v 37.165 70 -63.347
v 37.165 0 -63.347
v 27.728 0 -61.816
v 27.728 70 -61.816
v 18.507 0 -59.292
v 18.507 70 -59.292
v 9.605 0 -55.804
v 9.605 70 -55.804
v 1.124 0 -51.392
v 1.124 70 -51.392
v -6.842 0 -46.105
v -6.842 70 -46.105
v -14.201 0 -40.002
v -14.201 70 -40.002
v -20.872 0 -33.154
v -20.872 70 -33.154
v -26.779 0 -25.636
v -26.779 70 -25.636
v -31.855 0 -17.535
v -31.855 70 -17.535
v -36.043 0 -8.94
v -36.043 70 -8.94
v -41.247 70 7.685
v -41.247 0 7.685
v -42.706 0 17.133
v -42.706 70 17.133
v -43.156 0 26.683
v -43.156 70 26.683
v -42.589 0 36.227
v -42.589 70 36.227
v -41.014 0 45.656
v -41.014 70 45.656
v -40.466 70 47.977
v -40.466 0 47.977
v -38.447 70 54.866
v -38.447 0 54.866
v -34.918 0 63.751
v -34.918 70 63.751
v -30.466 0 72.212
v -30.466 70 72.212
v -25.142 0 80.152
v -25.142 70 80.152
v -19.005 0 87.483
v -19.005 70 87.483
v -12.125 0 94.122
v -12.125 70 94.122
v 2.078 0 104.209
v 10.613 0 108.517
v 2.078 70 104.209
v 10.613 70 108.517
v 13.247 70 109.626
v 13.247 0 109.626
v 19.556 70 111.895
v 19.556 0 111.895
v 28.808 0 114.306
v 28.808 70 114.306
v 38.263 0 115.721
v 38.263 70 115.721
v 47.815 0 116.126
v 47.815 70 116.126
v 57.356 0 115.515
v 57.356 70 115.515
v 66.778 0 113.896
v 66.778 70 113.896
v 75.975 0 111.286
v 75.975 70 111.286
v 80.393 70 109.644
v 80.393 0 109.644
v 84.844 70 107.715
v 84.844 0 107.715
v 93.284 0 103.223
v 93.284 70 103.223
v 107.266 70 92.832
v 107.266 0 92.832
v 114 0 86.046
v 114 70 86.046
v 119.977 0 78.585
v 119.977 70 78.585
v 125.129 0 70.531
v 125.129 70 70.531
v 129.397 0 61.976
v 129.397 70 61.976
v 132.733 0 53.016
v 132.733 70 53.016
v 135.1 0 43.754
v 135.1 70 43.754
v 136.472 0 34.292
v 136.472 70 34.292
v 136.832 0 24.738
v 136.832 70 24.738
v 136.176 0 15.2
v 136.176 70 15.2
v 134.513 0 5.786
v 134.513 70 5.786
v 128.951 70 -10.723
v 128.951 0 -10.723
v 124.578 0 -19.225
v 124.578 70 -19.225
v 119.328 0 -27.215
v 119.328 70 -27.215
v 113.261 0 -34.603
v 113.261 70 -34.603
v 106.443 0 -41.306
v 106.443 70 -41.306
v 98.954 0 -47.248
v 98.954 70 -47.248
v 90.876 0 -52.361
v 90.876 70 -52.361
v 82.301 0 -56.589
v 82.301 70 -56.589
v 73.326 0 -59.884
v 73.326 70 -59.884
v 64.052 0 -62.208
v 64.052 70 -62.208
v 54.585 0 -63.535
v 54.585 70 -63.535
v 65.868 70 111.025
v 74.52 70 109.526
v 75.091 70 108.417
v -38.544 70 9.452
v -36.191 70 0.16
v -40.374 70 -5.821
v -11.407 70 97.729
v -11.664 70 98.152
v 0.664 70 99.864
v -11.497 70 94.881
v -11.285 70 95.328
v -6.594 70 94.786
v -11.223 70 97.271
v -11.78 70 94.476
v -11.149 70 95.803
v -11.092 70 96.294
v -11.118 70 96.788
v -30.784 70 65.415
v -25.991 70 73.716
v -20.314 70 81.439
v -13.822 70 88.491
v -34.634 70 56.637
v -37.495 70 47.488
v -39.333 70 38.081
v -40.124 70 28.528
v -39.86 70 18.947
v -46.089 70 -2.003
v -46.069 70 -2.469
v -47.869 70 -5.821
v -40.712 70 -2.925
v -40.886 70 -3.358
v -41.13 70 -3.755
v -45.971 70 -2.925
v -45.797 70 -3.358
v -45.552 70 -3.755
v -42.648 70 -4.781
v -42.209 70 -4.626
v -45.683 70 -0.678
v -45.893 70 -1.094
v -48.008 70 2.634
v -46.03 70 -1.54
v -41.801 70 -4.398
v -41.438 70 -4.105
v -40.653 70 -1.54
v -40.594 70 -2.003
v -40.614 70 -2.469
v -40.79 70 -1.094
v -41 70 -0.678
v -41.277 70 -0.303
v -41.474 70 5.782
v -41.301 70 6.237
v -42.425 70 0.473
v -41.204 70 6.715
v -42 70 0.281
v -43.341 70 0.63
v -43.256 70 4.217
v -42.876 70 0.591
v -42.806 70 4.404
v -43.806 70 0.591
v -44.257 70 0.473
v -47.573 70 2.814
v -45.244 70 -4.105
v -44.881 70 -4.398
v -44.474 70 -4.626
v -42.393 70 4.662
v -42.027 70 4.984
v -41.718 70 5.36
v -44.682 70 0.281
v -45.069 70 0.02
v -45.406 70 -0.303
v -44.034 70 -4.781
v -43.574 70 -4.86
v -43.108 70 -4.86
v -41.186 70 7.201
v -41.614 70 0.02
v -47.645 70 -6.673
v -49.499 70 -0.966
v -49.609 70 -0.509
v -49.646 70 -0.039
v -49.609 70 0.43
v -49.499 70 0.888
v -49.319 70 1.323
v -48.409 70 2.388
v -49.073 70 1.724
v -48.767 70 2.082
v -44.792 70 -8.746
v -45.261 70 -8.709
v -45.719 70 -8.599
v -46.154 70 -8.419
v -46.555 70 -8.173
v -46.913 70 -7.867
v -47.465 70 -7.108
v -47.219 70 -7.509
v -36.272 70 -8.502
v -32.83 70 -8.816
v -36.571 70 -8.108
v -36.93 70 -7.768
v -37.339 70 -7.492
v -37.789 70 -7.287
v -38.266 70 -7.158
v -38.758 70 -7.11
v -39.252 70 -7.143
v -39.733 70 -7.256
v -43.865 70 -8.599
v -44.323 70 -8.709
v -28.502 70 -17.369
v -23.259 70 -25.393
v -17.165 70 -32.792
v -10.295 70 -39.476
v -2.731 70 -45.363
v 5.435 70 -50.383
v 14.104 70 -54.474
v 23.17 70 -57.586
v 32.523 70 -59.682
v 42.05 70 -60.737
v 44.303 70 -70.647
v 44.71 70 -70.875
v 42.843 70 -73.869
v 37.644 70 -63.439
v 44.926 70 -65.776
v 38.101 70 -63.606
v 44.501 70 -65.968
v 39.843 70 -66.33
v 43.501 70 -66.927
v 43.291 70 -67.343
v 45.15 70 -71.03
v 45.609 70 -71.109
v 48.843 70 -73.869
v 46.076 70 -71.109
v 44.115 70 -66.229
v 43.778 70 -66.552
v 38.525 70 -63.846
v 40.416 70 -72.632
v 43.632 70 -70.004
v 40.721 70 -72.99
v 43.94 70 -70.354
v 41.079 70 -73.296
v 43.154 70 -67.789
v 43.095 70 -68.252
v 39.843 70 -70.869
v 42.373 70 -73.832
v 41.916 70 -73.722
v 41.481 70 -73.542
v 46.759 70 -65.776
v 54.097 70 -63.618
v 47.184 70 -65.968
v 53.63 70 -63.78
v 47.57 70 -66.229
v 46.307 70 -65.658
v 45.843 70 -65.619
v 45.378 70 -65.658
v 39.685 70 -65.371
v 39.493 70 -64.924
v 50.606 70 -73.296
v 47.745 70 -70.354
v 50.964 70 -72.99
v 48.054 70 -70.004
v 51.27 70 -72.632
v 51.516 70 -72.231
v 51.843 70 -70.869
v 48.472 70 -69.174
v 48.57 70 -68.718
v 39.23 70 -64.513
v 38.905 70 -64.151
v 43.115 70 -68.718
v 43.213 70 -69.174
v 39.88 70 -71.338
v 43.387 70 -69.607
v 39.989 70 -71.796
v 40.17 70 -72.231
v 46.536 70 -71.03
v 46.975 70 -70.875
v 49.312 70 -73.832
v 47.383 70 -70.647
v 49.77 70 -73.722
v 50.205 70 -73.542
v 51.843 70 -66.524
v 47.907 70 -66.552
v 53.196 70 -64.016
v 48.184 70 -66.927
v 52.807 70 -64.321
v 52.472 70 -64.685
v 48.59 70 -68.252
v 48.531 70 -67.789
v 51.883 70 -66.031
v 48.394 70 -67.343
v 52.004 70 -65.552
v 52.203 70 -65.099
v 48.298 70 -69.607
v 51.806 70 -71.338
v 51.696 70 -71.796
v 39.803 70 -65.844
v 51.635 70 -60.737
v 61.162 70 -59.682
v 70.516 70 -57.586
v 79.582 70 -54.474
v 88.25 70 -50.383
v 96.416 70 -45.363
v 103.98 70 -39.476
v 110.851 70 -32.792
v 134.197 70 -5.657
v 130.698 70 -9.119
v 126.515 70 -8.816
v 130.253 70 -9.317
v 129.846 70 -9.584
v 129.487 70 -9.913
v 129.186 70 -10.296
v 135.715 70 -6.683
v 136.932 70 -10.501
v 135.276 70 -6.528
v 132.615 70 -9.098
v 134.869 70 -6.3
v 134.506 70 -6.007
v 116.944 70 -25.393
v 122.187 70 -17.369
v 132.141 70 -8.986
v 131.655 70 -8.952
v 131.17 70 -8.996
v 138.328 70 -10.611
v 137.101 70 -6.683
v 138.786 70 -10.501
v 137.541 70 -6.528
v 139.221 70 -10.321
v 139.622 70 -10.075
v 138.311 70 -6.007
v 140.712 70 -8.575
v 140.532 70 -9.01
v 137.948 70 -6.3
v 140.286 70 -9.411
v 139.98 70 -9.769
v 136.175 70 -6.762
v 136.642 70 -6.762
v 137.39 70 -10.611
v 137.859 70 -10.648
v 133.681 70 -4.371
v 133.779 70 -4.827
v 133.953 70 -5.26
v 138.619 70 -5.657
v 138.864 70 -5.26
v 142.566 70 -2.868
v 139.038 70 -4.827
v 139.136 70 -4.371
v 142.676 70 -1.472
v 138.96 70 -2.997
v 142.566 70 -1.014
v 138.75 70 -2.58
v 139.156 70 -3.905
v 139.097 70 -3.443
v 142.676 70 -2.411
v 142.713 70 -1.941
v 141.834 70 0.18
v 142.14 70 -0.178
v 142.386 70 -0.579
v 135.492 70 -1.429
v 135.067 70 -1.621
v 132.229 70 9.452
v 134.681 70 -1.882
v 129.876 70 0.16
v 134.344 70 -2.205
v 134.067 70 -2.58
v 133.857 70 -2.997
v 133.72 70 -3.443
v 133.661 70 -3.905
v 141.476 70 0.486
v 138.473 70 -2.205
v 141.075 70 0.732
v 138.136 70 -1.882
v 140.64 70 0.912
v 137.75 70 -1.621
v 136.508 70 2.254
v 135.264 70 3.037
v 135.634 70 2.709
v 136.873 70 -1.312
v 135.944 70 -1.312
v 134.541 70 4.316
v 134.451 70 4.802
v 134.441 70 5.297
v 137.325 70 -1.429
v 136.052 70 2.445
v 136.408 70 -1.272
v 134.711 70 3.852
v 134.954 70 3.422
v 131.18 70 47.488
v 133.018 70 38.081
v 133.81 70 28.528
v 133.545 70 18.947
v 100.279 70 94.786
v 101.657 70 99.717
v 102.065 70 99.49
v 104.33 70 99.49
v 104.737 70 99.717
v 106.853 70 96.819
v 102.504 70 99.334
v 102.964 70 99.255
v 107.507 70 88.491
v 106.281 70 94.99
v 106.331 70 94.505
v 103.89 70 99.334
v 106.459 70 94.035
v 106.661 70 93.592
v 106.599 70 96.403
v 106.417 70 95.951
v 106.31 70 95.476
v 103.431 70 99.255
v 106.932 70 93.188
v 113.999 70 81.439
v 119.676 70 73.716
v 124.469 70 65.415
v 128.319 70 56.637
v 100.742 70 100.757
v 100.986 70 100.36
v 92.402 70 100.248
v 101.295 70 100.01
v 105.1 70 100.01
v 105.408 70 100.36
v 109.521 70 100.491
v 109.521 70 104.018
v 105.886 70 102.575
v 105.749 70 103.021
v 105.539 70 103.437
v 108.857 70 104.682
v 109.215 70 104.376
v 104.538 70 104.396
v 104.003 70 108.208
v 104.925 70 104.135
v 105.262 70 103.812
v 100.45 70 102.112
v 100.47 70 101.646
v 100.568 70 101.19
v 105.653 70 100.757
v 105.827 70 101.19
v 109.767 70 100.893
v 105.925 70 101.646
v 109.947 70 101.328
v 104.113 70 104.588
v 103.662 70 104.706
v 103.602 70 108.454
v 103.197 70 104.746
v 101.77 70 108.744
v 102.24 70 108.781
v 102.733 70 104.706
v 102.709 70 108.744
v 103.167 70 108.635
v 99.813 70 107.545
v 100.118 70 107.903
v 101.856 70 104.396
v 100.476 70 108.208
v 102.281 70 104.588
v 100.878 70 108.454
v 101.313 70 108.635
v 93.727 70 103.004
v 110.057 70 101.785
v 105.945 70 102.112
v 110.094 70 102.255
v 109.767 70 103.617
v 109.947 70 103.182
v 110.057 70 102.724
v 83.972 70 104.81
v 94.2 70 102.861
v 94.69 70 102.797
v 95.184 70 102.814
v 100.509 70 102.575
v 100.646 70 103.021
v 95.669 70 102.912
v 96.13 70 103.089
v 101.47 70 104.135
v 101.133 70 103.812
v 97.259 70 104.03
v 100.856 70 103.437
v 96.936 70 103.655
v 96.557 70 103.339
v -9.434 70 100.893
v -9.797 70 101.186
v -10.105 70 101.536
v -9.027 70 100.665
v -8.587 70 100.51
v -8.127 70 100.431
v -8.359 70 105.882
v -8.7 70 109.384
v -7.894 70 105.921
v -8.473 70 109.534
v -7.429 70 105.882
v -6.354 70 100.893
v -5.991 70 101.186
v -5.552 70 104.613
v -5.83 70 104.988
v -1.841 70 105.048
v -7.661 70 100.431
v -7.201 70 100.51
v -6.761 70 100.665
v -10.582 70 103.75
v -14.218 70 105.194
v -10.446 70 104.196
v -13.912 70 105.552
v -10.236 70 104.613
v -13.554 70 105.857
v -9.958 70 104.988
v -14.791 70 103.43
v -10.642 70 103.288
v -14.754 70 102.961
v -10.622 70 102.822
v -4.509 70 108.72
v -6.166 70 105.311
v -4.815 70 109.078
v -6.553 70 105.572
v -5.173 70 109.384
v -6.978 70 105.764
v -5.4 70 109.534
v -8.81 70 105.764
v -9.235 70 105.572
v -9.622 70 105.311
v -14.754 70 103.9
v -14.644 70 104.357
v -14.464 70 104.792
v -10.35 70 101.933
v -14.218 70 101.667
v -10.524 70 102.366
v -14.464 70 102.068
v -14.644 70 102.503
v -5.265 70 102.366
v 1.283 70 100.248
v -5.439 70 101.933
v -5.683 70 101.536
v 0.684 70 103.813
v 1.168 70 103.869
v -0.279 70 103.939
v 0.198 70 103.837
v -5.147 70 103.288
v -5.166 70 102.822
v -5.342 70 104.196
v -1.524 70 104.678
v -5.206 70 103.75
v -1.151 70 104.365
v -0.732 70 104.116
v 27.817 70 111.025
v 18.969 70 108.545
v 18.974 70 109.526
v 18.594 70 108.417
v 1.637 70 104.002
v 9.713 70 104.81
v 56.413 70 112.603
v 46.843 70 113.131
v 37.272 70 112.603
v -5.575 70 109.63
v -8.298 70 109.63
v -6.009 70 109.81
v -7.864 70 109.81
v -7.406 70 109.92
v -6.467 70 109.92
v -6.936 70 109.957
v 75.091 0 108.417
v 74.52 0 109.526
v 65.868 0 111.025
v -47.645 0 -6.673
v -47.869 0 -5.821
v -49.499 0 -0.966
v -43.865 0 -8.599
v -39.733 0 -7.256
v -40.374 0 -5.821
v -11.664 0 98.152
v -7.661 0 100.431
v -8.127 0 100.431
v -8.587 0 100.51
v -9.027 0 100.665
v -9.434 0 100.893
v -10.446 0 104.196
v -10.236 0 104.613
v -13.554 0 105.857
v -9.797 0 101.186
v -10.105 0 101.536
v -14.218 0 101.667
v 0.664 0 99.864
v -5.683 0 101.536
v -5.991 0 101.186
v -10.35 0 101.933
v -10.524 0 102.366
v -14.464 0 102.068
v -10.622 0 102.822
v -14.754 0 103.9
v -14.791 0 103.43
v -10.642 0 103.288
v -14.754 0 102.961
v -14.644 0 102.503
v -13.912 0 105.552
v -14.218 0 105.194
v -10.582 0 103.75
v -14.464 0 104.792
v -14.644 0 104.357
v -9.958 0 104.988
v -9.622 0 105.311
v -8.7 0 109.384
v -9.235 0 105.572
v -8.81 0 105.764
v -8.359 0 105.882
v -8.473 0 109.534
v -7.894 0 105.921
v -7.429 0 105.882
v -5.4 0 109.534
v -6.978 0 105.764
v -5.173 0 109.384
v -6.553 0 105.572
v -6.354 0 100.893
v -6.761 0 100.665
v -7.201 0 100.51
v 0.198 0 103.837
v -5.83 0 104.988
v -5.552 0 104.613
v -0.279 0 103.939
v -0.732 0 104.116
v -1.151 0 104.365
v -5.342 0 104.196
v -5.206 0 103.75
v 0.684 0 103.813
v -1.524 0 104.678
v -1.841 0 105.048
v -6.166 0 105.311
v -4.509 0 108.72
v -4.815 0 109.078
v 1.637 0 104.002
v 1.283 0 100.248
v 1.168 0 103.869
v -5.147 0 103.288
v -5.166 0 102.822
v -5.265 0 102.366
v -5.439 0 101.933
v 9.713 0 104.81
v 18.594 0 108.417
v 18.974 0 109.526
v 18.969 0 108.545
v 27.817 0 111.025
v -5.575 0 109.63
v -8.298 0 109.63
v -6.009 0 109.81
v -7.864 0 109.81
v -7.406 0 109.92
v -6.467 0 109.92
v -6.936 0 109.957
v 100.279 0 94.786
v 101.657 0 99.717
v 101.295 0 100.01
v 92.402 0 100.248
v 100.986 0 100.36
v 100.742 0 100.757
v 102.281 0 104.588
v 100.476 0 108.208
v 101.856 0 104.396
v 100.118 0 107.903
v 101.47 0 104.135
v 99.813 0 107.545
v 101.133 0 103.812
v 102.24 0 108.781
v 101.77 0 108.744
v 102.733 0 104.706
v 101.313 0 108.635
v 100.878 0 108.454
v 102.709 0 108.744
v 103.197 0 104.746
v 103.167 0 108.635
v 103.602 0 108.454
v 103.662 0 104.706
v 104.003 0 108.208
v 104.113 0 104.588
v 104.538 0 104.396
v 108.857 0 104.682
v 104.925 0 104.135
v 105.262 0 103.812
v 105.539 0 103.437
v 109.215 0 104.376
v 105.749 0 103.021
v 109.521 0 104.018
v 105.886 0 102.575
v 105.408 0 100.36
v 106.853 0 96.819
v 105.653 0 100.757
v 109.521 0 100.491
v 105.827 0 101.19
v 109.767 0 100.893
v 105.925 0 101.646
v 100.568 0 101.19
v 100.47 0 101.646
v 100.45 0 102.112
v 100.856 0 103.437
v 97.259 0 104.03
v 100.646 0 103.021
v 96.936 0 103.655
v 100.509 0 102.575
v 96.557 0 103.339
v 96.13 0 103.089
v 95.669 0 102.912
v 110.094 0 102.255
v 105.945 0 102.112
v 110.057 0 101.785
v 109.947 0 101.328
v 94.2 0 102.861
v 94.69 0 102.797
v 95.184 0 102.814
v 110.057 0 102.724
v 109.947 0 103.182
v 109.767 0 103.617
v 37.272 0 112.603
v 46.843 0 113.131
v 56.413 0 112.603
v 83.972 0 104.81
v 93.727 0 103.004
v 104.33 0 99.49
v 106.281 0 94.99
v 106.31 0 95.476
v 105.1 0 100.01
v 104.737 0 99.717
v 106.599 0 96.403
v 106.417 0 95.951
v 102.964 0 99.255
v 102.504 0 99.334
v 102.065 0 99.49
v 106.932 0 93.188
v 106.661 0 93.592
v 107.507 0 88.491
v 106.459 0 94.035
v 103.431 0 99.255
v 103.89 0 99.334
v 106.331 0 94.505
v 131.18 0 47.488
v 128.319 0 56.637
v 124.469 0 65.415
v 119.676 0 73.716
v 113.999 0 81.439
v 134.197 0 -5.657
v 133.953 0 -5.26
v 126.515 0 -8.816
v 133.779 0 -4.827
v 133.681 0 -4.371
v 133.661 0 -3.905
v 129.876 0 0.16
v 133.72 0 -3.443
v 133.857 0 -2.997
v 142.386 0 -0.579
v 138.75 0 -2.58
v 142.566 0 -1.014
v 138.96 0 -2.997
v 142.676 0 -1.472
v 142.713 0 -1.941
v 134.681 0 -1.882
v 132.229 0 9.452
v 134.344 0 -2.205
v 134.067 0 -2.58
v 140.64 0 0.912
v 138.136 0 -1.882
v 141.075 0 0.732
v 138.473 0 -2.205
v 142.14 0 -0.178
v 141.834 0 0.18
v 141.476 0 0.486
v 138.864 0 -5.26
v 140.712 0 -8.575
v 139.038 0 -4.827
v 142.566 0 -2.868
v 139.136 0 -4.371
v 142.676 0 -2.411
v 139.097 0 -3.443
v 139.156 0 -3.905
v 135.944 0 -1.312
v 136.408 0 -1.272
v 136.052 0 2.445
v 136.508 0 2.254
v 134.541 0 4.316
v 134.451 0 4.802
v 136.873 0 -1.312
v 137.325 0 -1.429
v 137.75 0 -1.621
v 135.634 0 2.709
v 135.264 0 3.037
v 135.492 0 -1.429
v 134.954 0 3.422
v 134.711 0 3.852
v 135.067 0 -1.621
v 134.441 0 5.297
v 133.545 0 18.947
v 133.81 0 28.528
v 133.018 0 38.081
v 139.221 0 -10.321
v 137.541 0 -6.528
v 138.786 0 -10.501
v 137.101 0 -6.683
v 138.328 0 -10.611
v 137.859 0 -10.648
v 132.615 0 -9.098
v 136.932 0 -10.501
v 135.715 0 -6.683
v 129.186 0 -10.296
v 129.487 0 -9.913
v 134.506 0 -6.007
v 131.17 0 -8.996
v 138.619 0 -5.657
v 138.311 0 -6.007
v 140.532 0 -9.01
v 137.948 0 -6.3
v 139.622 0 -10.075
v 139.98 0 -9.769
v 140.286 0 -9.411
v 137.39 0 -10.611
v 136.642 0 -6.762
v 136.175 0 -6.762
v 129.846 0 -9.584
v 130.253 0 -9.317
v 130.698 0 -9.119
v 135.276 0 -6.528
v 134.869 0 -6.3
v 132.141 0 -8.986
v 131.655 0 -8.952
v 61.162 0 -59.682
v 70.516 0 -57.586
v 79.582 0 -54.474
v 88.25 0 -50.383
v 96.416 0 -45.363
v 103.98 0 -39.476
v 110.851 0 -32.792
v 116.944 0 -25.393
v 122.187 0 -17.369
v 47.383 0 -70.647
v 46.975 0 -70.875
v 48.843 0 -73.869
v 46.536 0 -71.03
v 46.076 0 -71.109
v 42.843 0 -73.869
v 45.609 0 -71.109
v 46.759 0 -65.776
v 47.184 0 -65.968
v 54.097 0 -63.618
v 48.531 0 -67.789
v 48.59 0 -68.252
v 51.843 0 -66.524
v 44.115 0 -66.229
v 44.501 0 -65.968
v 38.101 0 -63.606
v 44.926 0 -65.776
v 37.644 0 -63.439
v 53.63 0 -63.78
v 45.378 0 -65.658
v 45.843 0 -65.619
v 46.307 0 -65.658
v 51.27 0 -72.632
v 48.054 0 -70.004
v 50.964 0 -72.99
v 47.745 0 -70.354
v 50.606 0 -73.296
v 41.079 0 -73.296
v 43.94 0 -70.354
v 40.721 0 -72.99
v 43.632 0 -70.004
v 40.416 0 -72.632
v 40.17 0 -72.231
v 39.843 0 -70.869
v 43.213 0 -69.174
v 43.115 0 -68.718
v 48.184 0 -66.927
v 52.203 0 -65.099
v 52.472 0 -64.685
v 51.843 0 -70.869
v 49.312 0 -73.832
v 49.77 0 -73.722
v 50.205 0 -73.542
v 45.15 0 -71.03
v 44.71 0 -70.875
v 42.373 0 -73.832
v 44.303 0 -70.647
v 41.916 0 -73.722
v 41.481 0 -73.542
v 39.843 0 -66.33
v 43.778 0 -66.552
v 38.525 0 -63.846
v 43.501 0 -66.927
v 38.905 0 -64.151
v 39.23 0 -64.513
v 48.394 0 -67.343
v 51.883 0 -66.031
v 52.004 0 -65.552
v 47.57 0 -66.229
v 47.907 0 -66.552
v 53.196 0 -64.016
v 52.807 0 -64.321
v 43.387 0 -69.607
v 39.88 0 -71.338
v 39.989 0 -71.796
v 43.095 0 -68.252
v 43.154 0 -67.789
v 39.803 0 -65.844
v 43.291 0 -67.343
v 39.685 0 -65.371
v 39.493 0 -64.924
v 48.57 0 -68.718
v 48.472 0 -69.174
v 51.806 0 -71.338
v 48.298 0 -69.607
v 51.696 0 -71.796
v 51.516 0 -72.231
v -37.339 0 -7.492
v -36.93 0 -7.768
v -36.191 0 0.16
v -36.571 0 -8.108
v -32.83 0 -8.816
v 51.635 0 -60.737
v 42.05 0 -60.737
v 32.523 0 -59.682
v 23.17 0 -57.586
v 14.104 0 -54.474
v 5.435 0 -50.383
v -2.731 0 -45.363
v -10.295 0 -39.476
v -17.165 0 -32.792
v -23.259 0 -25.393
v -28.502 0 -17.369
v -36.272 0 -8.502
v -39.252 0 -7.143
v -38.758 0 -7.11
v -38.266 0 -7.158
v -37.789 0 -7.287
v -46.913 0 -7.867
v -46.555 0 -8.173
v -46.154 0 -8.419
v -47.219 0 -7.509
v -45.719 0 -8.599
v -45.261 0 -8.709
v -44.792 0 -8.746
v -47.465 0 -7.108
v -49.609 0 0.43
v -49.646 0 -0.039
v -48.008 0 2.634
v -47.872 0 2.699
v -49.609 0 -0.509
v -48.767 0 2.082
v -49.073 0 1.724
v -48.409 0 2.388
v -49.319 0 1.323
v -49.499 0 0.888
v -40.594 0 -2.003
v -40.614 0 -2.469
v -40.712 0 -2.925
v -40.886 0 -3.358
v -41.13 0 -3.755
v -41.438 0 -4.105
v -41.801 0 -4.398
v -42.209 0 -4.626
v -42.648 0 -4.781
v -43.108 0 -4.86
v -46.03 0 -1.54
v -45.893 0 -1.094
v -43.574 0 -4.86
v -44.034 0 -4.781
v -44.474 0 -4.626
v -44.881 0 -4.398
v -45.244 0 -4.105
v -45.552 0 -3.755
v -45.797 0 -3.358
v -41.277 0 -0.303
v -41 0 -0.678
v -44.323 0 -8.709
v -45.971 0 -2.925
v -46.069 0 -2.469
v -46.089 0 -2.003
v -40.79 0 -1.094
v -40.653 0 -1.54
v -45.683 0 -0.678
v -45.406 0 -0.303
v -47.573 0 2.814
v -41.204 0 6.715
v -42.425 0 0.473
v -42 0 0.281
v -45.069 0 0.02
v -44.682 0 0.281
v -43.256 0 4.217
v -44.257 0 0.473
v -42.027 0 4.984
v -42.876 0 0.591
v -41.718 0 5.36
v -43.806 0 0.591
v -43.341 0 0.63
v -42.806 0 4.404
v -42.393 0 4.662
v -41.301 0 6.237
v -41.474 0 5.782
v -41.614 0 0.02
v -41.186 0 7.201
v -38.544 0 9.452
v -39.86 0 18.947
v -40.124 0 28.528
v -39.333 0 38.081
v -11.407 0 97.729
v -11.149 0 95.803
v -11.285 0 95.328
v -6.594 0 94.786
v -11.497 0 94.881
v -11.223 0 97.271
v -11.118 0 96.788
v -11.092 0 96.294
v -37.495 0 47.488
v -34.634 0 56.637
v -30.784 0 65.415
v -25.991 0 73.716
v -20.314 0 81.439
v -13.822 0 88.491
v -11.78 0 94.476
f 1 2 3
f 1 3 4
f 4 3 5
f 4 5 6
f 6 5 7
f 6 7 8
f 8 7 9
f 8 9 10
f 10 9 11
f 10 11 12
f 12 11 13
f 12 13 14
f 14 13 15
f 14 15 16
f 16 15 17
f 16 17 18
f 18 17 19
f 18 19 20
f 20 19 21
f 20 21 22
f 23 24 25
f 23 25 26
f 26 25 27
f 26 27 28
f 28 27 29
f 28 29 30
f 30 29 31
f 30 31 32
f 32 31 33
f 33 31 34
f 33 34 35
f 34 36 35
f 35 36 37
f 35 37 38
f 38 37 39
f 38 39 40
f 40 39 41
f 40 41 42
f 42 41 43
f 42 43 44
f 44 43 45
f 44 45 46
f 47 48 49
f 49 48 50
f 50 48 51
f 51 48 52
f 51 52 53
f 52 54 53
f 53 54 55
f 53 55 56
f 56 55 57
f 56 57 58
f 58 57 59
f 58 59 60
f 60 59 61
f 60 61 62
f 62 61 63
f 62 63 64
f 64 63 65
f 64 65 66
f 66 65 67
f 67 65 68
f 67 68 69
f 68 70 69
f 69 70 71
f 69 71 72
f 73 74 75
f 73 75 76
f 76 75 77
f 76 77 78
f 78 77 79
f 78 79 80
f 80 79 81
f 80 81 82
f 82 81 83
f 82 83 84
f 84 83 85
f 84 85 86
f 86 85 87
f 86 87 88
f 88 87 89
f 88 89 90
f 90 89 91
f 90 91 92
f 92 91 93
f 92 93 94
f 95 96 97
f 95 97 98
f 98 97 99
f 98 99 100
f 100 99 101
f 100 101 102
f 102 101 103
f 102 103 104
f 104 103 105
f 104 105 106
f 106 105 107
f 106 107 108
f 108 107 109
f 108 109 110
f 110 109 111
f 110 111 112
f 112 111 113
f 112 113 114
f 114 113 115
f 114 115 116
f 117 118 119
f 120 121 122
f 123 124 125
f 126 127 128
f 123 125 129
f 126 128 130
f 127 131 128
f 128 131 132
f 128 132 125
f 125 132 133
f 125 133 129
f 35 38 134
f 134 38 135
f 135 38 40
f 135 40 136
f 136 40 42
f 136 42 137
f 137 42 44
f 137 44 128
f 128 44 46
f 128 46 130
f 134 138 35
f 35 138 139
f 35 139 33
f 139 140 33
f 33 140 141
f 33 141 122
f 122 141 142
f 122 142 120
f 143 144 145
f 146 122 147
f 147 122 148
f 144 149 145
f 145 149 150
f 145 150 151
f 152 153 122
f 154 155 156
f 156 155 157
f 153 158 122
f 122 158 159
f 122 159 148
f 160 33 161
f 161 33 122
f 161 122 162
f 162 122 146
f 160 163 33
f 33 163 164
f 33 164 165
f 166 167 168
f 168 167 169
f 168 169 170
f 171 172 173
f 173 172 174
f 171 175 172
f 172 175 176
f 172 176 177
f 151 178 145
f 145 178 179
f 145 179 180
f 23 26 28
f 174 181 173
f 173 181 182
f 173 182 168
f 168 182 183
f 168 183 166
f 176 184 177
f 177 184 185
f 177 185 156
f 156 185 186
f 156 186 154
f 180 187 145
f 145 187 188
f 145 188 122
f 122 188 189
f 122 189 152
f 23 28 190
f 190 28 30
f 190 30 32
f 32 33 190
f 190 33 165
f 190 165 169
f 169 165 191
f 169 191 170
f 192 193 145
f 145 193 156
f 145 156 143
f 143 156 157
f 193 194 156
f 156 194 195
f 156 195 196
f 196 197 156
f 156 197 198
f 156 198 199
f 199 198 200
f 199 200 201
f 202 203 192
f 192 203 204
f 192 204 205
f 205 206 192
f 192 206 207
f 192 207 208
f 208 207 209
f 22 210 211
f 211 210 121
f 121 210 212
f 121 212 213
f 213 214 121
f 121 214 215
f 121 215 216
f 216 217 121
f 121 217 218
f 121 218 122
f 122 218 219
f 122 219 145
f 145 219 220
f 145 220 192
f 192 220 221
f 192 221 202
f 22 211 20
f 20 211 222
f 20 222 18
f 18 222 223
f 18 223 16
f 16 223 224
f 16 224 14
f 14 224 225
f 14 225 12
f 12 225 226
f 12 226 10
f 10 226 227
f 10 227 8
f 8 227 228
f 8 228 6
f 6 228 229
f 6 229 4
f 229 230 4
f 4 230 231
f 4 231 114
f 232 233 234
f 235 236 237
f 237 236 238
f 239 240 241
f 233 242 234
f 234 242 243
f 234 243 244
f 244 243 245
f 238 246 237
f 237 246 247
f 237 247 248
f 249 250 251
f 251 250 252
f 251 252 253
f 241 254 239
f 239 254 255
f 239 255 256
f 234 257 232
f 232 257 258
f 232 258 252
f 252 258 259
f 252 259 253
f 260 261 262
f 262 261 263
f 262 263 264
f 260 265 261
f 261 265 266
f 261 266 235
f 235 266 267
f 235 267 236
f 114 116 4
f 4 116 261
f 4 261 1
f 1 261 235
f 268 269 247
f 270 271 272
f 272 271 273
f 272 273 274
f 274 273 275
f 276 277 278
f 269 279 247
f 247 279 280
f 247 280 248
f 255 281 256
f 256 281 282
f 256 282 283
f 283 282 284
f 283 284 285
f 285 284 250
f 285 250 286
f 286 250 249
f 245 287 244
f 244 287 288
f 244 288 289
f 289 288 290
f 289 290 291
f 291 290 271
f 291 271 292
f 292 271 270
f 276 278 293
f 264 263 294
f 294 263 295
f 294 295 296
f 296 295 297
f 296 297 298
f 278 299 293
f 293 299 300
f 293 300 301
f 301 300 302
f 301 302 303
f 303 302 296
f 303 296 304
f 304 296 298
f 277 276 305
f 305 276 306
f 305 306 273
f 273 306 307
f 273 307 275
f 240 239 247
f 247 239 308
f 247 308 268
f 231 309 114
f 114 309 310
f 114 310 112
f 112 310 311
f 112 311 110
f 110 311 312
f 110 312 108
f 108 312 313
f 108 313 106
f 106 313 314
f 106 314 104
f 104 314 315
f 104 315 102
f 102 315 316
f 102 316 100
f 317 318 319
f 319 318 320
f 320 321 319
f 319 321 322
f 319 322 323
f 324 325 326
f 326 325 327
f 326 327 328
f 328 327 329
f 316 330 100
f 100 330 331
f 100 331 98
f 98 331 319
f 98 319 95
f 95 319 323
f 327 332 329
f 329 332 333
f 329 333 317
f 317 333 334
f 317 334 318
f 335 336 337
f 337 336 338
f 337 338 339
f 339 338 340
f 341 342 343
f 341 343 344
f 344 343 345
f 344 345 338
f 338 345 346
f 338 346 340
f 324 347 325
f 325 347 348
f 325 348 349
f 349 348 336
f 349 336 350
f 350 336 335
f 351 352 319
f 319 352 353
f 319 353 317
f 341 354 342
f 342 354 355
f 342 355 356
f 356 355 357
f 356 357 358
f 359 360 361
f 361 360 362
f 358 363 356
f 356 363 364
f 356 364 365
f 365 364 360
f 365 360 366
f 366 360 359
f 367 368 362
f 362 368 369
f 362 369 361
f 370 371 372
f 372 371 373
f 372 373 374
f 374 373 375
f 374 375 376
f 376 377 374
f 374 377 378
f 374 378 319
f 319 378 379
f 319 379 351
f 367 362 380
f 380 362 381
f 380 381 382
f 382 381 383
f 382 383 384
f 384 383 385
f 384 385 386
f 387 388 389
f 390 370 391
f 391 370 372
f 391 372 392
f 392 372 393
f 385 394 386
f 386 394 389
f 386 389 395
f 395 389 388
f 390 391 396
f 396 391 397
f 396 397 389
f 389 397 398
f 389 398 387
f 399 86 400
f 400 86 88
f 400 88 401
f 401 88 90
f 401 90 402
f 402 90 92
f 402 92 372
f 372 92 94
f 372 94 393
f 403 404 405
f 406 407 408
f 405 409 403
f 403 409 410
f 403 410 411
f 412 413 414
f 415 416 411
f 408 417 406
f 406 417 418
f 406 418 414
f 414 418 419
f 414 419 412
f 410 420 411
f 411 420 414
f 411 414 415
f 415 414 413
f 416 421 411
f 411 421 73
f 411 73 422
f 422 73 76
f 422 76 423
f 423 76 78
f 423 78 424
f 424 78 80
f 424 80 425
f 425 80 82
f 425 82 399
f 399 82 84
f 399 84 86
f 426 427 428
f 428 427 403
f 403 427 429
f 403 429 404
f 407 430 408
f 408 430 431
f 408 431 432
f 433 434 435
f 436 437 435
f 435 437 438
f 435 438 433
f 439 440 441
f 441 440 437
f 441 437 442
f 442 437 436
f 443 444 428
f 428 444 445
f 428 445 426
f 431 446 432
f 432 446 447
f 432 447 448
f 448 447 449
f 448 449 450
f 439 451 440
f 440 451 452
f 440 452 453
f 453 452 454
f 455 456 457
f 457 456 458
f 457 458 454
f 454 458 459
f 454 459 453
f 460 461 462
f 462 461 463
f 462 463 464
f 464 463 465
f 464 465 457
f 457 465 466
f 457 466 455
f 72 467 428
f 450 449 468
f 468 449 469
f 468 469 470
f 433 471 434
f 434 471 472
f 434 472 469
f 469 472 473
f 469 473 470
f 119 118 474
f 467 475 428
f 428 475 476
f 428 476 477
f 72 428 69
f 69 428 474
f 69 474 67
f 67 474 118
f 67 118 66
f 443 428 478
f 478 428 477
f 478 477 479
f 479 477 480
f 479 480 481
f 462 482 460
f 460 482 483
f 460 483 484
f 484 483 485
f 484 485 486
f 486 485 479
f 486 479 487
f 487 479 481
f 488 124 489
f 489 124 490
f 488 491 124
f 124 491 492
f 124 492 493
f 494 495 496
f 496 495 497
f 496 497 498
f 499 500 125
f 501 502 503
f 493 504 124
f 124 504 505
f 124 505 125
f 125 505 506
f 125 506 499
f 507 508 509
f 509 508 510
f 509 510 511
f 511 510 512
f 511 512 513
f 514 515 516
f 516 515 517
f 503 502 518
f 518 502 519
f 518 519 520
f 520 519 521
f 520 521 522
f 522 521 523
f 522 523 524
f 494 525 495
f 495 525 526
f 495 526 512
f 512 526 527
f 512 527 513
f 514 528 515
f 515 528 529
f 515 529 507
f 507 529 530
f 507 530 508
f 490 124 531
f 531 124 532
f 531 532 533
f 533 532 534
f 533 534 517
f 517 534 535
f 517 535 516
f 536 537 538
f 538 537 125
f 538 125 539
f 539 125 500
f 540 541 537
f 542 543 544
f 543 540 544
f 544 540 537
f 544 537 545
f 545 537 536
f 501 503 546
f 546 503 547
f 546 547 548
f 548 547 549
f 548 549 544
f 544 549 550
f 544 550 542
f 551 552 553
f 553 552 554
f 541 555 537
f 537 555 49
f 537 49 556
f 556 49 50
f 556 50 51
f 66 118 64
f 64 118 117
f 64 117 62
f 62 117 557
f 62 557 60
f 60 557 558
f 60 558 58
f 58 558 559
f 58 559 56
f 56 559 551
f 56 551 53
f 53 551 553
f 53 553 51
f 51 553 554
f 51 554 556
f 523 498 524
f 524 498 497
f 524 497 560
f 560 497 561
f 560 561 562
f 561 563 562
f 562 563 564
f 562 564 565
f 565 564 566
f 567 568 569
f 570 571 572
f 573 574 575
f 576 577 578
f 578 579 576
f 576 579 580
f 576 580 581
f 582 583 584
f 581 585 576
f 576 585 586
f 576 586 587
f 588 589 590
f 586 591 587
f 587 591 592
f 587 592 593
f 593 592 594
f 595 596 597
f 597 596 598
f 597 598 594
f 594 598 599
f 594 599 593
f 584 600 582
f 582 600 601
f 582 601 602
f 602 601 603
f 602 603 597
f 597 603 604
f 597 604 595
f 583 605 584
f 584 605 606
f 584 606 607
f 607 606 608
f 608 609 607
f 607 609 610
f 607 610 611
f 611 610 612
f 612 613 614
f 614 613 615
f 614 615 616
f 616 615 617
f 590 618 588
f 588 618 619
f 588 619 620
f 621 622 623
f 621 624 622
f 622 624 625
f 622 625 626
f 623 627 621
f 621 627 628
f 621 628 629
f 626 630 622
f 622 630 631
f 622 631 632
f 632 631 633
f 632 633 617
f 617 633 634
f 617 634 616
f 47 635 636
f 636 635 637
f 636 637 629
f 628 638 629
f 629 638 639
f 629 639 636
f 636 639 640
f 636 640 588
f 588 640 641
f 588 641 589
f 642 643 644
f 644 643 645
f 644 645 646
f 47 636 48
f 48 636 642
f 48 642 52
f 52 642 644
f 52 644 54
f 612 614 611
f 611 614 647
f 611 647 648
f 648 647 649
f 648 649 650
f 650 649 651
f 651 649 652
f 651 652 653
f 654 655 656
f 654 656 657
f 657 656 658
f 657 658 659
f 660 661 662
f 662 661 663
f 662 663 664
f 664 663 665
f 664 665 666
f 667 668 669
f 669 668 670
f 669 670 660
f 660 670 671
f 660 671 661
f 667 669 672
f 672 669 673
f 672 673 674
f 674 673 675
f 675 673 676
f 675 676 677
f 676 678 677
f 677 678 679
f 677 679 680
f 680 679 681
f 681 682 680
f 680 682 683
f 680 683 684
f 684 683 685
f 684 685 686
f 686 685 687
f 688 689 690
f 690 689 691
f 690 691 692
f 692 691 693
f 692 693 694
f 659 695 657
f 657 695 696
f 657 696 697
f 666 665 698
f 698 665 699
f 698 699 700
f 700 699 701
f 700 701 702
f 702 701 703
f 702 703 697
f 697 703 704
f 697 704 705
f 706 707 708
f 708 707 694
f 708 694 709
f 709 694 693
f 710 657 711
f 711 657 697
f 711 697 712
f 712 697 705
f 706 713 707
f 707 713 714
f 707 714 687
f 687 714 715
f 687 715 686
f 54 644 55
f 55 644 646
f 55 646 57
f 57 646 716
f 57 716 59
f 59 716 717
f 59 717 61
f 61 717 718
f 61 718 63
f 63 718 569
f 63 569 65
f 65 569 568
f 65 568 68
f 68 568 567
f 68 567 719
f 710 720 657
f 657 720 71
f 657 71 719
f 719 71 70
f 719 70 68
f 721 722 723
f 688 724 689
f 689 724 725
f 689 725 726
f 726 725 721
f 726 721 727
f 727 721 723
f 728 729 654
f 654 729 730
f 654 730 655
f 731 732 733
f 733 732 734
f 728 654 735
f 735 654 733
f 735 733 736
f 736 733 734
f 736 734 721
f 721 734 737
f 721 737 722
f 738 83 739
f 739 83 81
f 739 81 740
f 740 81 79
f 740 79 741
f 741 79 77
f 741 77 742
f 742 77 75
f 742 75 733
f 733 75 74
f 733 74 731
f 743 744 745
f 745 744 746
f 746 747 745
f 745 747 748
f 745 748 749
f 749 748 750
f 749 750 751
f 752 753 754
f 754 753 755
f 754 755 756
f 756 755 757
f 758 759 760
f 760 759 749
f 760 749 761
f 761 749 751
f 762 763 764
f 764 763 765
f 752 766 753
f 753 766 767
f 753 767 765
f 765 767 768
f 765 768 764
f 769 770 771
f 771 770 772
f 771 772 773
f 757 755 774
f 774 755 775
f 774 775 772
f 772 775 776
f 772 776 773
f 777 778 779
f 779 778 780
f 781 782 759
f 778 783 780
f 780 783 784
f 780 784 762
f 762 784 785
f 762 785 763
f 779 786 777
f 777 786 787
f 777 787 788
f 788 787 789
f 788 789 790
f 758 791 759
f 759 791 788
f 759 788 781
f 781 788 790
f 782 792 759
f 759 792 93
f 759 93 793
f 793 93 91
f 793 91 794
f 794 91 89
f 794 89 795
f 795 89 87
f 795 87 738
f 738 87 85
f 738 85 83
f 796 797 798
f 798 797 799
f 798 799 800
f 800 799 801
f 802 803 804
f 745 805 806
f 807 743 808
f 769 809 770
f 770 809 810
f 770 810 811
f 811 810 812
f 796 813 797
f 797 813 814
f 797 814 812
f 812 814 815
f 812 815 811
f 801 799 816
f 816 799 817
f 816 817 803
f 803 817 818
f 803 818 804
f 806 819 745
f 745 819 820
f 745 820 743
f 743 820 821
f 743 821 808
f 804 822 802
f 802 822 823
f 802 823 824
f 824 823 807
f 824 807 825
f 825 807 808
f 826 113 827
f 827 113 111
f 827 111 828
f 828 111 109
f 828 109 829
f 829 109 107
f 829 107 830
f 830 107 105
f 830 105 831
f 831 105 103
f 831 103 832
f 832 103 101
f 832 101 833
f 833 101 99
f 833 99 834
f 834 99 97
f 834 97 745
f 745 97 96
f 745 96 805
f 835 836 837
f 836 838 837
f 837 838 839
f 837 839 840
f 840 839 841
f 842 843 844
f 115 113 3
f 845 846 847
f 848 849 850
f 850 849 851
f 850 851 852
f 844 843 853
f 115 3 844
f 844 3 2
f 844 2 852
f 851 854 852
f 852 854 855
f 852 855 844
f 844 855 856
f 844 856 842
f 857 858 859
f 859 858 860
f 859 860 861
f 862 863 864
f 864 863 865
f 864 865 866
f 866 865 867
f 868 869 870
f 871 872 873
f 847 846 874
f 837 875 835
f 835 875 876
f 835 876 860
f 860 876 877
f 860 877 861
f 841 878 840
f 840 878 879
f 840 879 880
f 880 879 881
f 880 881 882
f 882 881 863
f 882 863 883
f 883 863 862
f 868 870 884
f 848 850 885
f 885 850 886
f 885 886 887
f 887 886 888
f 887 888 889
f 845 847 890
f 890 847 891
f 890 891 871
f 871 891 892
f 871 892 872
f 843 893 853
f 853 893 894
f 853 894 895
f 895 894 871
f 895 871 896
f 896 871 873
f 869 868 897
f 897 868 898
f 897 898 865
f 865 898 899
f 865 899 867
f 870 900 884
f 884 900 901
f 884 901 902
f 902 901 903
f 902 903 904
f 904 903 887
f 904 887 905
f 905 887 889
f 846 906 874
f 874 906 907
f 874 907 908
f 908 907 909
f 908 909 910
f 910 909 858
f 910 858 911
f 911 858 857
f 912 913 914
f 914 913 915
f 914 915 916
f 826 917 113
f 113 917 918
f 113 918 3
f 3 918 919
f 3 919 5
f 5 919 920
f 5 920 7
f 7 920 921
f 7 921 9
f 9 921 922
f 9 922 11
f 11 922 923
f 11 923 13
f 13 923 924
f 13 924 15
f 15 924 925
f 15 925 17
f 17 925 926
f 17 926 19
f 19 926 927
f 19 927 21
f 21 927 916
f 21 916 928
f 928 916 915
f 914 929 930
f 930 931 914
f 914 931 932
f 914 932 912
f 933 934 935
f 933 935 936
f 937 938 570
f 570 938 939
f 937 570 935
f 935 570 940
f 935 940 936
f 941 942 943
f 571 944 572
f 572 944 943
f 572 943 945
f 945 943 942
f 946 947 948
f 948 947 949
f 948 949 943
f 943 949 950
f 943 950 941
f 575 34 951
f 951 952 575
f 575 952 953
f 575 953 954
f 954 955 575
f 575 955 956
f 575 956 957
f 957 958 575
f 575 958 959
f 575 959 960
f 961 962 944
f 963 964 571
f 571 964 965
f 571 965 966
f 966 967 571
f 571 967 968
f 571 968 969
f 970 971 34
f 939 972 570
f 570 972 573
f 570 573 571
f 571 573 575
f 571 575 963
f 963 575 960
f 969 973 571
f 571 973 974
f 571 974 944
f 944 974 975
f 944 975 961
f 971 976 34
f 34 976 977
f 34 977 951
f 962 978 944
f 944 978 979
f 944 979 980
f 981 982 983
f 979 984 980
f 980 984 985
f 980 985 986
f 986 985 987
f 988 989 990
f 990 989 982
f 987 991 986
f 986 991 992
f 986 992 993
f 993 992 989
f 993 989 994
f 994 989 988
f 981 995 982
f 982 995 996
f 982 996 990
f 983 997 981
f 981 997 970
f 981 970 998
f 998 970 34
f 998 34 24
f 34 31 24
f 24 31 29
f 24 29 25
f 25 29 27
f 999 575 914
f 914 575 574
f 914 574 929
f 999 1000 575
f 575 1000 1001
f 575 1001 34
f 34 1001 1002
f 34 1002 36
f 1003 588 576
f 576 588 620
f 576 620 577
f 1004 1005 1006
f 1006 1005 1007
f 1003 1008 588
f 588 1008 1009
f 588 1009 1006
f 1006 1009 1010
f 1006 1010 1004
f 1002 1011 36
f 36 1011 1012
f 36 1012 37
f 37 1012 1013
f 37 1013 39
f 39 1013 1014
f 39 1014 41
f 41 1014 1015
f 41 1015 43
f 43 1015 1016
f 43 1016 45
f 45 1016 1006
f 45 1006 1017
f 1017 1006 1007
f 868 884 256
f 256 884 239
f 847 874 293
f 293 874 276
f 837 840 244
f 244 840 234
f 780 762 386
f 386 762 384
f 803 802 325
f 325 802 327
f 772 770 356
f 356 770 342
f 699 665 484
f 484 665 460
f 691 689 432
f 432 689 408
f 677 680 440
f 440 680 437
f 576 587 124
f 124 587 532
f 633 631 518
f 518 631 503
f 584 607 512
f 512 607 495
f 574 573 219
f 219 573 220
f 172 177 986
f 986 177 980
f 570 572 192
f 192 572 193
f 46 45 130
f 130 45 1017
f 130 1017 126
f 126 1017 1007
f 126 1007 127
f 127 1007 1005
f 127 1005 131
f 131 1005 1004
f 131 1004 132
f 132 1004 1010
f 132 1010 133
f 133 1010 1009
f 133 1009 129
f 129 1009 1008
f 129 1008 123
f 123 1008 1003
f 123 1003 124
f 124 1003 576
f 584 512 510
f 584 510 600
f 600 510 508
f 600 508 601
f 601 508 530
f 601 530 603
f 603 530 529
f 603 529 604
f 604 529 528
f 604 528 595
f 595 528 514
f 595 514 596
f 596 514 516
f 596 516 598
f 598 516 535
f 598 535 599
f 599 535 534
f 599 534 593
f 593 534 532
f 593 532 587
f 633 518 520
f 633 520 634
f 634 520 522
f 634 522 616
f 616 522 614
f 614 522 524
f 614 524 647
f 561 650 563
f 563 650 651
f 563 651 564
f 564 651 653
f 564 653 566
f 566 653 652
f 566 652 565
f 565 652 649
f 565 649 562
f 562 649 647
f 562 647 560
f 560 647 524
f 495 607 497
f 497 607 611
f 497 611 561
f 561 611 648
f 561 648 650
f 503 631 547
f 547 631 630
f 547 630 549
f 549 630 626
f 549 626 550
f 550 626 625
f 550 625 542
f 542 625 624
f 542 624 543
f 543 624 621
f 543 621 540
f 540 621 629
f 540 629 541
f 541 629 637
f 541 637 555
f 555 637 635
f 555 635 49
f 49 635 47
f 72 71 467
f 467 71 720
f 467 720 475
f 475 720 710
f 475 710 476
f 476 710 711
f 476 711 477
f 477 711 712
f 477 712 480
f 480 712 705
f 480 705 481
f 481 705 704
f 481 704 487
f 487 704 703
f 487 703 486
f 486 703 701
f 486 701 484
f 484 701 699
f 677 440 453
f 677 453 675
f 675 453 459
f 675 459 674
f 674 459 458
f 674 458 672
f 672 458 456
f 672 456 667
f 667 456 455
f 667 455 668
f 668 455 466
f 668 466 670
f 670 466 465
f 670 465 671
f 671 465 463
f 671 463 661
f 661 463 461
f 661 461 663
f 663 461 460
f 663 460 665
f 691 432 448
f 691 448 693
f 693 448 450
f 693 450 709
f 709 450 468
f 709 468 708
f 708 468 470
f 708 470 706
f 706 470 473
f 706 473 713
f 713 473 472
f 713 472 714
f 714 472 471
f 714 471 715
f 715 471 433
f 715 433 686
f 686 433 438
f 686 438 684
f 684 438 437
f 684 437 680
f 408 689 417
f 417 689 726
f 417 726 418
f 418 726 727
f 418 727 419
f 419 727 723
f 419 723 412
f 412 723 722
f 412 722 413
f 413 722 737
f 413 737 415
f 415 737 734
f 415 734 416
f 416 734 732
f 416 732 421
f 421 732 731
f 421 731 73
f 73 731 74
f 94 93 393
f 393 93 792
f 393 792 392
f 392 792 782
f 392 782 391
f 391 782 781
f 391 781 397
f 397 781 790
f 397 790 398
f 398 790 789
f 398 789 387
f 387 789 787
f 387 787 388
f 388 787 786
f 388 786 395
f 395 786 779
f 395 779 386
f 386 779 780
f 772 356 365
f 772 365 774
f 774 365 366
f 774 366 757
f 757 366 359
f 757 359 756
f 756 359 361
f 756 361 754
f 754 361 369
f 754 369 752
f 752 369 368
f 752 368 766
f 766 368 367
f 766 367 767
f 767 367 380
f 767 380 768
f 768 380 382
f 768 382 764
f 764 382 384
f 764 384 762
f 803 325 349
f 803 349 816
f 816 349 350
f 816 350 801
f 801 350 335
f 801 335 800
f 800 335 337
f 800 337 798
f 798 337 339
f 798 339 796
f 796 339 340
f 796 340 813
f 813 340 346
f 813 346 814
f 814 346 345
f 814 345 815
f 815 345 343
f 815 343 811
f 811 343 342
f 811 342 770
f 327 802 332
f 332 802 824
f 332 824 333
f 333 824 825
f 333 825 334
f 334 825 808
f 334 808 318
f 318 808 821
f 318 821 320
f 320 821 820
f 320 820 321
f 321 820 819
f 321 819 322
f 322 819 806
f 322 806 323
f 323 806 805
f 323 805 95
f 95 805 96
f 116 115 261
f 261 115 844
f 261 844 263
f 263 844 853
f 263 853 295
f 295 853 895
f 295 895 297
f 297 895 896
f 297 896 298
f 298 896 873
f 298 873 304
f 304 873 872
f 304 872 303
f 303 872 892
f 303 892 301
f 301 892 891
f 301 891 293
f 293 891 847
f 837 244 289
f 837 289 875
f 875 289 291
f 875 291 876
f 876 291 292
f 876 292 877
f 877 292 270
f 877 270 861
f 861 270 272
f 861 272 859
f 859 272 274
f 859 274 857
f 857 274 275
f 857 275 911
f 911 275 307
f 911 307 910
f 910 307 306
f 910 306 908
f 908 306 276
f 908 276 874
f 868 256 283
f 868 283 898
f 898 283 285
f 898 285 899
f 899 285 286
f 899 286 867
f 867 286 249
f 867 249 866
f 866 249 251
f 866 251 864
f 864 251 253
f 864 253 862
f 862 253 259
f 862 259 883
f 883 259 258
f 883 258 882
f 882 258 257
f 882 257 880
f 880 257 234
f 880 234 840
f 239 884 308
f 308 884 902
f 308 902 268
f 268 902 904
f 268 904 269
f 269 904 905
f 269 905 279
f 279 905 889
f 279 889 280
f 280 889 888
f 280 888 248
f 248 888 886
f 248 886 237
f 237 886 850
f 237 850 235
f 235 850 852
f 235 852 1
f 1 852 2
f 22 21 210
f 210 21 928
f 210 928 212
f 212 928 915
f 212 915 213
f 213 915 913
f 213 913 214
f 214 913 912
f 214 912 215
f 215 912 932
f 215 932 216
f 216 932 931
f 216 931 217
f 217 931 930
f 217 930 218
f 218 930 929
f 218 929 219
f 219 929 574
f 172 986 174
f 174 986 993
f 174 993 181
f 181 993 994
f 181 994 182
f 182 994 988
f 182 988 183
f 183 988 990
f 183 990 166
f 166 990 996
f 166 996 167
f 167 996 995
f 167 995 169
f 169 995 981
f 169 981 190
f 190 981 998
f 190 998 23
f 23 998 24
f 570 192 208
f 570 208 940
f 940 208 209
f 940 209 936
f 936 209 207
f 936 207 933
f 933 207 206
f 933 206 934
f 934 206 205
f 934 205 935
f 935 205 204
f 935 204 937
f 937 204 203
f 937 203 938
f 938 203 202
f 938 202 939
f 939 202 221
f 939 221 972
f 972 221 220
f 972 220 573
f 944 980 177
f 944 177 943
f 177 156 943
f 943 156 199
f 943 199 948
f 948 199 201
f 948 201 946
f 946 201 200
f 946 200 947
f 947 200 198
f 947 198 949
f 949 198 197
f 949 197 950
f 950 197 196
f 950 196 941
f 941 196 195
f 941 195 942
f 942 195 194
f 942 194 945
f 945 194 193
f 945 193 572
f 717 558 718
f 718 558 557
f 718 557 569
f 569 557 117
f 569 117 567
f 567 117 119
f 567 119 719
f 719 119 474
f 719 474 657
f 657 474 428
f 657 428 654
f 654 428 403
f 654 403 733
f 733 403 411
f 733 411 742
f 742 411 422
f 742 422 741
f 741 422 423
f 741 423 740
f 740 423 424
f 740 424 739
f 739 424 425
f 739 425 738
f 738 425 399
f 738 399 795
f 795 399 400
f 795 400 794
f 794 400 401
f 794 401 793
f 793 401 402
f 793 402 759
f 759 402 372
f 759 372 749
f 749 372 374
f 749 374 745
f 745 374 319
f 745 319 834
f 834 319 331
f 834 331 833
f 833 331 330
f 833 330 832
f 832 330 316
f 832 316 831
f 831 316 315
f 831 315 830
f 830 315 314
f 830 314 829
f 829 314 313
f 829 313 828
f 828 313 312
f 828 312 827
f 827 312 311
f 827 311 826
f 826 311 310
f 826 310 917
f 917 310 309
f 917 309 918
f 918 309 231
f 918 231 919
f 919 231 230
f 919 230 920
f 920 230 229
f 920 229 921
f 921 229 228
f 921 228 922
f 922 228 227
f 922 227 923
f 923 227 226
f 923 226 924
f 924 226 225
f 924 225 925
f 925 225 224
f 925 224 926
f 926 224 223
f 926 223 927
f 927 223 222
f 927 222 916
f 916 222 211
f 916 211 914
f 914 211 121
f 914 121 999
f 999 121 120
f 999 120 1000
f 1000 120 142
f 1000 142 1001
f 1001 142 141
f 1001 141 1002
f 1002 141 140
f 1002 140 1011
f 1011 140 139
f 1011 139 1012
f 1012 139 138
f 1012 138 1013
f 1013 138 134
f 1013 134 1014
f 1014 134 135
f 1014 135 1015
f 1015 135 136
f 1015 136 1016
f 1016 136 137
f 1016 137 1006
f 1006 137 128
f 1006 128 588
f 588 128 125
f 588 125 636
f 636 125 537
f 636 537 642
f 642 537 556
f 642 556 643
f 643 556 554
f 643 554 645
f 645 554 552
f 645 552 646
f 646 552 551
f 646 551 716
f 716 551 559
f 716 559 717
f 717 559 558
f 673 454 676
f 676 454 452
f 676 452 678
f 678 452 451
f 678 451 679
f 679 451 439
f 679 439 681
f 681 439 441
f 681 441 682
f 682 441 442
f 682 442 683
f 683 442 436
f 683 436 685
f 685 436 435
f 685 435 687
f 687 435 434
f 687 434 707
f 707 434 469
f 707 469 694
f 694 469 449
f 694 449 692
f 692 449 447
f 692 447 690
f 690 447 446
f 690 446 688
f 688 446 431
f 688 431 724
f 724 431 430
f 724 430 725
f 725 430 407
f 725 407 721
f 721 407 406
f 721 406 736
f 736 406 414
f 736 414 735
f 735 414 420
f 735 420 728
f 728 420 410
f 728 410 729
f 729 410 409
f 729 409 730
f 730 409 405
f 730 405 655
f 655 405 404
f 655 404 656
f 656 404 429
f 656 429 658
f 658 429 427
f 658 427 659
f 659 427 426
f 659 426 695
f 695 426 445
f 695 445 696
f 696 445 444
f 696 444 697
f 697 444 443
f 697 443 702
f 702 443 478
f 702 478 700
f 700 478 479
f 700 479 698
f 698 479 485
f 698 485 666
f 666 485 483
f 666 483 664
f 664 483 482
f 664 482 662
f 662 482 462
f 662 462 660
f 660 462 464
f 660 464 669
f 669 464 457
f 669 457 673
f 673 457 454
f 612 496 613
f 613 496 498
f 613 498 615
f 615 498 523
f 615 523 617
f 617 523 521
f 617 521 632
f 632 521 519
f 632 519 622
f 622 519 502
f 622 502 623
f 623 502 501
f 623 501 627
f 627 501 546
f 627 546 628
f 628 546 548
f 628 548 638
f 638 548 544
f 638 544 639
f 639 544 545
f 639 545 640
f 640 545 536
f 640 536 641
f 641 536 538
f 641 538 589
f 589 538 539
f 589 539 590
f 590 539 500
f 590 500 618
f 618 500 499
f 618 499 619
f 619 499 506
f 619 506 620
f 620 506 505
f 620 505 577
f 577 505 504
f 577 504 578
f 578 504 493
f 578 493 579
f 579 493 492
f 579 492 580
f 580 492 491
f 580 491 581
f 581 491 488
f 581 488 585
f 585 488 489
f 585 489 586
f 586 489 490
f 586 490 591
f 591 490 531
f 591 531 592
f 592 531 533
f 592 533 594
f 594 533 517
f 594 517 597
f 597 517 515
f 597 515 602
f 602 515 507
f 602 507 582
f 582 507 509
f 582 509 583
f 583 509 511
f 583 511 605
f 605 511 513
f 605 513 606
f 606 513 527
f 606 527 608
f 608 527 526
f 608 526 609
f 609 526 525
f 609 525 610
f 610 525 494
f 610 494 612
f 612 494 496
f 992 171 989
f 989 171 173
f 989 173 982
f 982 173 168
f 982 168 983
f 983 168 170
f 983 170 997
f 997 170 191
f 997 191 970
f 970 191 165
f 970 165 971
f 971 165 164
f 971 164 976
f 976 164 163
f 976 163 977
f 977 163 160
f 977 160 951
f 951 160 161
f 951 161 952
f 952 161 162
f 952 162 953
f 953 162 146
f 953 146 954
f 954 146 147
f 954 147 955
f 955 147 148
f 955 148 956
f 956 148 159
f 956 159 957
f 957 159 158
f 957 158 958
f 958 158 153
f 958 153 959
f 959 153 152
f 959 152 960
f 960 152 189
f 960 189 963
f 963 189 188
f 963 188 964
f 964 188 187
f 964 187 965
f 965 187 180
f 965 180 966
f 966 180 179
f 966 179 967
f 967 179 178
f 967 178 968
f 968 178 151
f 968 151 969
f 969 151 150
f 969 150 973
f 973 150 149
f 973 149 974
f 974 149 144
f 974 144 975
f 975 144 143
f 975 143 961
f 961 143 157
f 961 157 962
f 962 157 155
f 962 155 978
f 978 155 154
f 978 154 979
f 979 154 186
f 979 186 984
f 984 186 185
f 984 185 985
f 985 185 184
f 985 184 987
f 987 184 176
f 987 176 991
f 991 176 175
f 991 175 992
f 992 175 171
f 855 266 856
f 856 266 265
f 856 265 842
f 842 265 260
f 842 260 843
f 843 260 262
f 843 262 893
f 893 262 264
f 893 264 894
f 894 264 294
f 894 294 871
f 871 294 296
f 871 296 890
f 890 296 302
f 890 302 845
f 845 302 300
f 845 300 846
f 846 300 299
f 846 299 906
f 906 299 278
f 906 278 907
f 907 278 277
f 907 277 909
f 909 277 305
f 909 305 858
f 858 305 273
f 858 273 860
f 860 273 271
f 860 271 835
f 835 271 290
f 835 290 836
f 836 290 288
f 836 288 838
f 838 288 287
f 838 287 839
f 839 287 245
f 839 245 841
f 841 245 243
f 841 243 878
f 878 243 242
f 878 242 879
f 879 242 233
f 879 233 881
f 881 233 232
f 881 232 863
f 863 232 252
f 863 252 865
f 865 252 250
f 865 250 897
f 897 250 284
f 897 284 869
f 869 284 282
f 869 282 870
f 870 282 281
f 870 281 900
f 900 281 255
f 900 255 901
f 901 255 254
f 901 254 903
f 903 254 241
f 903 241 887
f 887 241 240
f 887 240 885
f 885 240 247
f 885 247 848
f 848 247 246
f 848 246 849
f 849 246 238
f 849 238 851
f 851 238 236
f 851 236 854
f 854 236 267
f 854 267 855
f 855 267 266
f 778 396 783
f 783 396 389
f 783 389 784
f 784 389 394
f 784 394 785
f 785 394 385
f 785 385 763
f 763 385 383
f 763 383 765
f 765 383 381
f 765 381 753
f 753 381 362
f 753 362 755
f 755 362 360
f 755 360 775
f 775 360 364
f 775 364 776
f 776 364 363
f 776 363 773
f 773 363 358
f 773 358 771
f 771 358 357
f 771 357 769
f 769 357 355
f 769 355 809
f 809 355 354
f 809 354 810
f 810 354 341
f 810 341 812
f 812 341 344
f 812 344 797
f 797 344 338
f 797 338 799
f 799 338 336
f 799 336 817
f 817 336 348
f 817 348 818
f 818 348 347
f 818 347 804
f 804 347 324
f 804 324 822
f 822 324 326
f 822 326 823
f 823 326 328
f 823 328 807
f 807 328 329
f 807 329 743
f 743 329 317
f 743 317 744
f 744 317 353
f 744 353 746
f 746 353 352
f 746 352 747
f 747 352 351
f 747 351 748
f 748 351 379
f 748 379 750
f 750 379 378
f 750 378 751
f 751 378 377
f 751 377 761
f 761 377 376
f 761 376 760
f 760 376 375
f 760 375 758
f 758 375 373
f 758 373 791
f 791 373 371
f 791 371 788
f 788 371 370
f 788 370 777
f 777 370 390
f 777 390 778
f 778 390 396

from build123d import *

# Parameters (mm, degrees)
SKETCH1_R           = 90
BOSS_EXTRUDE1_DEPTH = 70
SKETCH3_W           = 12
SKETCH3_H           = 12
BOSS_EXTRUDE2_DEPTH = 70
FILLET1_R           = 3
SKETCH2_R           = 87
CUT_EXTRUDE3_DEPTH  = 197.859070299
SKETCH5_R           = 2.75
CUT_EXTRUDE4_DEPTH  = 197.859070299


with BuildPart() as part:
    # Sketch1 → Boss-Extrude1 (new body)
    with BuildSketch(Plane(origin=(0, 0, 0), x_dir=(1, 0, 0), z_dir=(0, 1, 0))):
        with Locations(Location((46.842609329, -26.131207683, 0), (0, 0, 270))):
            Circle(SKETCH1_R)
    extrude(amount=BOSS_EXTRUDE1_DEPTH)

    # Sketch3 → Boss-Extrude2 (add)
    with BuildSketch(Plane(origin=(0, 70, 0), x_dir=(1, 0, 0), z_dir=(0, 1, 0))):
        Polygon((139.785141997, 11.427887368), (128.372463802, 7.719683436), (132.080667734, -3.69299476), (143.49334593, 0.015209173), align=None)
        with Locations((45.842609329, 67.868792317)):
            Rectangle(SKETCH3_W, SKETCH3_H)
        Polygon((111.284253518, -102.918410355), (104.230830491, -93.210206422), (94.522626558, -100.26362945), (101.576049586, -109.971833382), align=None)
        Polygon((-6.27279694, -111.147403887), (0.780626087, -101.439199954), (-8.927577845, -94.385776927), (-15.981000873, -104.093980859), align=None)
        Polygon((-50.426161262, -1.88690386), (-39.013483066, -5.595107792), (-35.305279134, 5.817570403), (-46.717957329, 9.525774336), align=None)
    extrude(amount=-BOSS_EXTRUDE2_DEPTH)

    # Fillet1
    fillet1_edges = [part.edges().sort_by_distance(p)[0] for p in [
        (51.842609329, 35, -73.868792317),
        (39.842609329, 35, -63.59615715),
        (39.842609329, 35, -73.868792317),
        (51.842609329, 35, -63.729796095),
        (143.49334593, 35, -0.015209173),
        (139.785141997, 35, -11.427887368),
        (133.850587504, 35, 3.117912966),
        (130.015285383, 35, -8.253468525),
        (101.576049586, 35, 109.971833382),
        (111.284253518, 35, 102.918410355),
        (95.616497134, 35, 101.769213133),
        (105.246150065, 35, 94.607673928),
        (-15.981000873, 35, 104.093980859),
        (-6.27279694, 35, 111.147403887),
        (-10.02144842, 35, 95.89136061),
        (-0.234693487, 35, 102.83666746),
        (-46.717957329, 35, -9.525774336),
        (-50.426161262, 35, 1.88690386),
        (-37.075198904, 35, -6.392652197),
        (-40.656304647, 35, 5.061322703),
    ]]
    fillet(fillet1_edges, radius=FILLET1_R)

    # Sketch2 → Cut-Extrude3 (cut, through all)
    with BuildSketch(Plane(origin=(0, 70, 0), x_dir=(1, 0, 0), z_dir=(0, 1, 0))):
        with Locations(Location((46.842609329, -26.131207683, 0), (0, 0, 270))):
            Circle(SKETCH2_R)
    extrude(amount=-CUT_EXTRUDE3_DEPTH, mode=Mode.SUBTRACT)

    # Sketch5 → Cut-Extrude4 (cut, through all)
    with BuildSketch(Plane(origin=(0, 70, 0), x_dir=(1, 0, 0), z_dir=(0, 1, 0))):
        with Locations(Location((103.197332665, -101.995528399, 0), (0, 0, 270))):
            Circle(SKETCH5_R)
        with Locations(Location((-7.894080019, -103.171098904, 0), (0, 0, 270))):
            Circle(SKETCH5_R)
        with Locations(Location((-43.341248456, 2.119841769, 0), (0, 0, 270))):
            Circle(SKETCH5_R)
        with Locations(Location((45.842609329, 68.368792317, 0), (0, 0, 270))):
            Circle(SKETCH5_R)
        with Locations(Location((136.408433124, 4.021954801, 0), (0, 0, 270))):
            Circle(SKETCH5_R)
    extrude(amount=-CUT_EXTRUDE4_DEPTH, mode=Mode.SUBTRACT)


solid = part.part
